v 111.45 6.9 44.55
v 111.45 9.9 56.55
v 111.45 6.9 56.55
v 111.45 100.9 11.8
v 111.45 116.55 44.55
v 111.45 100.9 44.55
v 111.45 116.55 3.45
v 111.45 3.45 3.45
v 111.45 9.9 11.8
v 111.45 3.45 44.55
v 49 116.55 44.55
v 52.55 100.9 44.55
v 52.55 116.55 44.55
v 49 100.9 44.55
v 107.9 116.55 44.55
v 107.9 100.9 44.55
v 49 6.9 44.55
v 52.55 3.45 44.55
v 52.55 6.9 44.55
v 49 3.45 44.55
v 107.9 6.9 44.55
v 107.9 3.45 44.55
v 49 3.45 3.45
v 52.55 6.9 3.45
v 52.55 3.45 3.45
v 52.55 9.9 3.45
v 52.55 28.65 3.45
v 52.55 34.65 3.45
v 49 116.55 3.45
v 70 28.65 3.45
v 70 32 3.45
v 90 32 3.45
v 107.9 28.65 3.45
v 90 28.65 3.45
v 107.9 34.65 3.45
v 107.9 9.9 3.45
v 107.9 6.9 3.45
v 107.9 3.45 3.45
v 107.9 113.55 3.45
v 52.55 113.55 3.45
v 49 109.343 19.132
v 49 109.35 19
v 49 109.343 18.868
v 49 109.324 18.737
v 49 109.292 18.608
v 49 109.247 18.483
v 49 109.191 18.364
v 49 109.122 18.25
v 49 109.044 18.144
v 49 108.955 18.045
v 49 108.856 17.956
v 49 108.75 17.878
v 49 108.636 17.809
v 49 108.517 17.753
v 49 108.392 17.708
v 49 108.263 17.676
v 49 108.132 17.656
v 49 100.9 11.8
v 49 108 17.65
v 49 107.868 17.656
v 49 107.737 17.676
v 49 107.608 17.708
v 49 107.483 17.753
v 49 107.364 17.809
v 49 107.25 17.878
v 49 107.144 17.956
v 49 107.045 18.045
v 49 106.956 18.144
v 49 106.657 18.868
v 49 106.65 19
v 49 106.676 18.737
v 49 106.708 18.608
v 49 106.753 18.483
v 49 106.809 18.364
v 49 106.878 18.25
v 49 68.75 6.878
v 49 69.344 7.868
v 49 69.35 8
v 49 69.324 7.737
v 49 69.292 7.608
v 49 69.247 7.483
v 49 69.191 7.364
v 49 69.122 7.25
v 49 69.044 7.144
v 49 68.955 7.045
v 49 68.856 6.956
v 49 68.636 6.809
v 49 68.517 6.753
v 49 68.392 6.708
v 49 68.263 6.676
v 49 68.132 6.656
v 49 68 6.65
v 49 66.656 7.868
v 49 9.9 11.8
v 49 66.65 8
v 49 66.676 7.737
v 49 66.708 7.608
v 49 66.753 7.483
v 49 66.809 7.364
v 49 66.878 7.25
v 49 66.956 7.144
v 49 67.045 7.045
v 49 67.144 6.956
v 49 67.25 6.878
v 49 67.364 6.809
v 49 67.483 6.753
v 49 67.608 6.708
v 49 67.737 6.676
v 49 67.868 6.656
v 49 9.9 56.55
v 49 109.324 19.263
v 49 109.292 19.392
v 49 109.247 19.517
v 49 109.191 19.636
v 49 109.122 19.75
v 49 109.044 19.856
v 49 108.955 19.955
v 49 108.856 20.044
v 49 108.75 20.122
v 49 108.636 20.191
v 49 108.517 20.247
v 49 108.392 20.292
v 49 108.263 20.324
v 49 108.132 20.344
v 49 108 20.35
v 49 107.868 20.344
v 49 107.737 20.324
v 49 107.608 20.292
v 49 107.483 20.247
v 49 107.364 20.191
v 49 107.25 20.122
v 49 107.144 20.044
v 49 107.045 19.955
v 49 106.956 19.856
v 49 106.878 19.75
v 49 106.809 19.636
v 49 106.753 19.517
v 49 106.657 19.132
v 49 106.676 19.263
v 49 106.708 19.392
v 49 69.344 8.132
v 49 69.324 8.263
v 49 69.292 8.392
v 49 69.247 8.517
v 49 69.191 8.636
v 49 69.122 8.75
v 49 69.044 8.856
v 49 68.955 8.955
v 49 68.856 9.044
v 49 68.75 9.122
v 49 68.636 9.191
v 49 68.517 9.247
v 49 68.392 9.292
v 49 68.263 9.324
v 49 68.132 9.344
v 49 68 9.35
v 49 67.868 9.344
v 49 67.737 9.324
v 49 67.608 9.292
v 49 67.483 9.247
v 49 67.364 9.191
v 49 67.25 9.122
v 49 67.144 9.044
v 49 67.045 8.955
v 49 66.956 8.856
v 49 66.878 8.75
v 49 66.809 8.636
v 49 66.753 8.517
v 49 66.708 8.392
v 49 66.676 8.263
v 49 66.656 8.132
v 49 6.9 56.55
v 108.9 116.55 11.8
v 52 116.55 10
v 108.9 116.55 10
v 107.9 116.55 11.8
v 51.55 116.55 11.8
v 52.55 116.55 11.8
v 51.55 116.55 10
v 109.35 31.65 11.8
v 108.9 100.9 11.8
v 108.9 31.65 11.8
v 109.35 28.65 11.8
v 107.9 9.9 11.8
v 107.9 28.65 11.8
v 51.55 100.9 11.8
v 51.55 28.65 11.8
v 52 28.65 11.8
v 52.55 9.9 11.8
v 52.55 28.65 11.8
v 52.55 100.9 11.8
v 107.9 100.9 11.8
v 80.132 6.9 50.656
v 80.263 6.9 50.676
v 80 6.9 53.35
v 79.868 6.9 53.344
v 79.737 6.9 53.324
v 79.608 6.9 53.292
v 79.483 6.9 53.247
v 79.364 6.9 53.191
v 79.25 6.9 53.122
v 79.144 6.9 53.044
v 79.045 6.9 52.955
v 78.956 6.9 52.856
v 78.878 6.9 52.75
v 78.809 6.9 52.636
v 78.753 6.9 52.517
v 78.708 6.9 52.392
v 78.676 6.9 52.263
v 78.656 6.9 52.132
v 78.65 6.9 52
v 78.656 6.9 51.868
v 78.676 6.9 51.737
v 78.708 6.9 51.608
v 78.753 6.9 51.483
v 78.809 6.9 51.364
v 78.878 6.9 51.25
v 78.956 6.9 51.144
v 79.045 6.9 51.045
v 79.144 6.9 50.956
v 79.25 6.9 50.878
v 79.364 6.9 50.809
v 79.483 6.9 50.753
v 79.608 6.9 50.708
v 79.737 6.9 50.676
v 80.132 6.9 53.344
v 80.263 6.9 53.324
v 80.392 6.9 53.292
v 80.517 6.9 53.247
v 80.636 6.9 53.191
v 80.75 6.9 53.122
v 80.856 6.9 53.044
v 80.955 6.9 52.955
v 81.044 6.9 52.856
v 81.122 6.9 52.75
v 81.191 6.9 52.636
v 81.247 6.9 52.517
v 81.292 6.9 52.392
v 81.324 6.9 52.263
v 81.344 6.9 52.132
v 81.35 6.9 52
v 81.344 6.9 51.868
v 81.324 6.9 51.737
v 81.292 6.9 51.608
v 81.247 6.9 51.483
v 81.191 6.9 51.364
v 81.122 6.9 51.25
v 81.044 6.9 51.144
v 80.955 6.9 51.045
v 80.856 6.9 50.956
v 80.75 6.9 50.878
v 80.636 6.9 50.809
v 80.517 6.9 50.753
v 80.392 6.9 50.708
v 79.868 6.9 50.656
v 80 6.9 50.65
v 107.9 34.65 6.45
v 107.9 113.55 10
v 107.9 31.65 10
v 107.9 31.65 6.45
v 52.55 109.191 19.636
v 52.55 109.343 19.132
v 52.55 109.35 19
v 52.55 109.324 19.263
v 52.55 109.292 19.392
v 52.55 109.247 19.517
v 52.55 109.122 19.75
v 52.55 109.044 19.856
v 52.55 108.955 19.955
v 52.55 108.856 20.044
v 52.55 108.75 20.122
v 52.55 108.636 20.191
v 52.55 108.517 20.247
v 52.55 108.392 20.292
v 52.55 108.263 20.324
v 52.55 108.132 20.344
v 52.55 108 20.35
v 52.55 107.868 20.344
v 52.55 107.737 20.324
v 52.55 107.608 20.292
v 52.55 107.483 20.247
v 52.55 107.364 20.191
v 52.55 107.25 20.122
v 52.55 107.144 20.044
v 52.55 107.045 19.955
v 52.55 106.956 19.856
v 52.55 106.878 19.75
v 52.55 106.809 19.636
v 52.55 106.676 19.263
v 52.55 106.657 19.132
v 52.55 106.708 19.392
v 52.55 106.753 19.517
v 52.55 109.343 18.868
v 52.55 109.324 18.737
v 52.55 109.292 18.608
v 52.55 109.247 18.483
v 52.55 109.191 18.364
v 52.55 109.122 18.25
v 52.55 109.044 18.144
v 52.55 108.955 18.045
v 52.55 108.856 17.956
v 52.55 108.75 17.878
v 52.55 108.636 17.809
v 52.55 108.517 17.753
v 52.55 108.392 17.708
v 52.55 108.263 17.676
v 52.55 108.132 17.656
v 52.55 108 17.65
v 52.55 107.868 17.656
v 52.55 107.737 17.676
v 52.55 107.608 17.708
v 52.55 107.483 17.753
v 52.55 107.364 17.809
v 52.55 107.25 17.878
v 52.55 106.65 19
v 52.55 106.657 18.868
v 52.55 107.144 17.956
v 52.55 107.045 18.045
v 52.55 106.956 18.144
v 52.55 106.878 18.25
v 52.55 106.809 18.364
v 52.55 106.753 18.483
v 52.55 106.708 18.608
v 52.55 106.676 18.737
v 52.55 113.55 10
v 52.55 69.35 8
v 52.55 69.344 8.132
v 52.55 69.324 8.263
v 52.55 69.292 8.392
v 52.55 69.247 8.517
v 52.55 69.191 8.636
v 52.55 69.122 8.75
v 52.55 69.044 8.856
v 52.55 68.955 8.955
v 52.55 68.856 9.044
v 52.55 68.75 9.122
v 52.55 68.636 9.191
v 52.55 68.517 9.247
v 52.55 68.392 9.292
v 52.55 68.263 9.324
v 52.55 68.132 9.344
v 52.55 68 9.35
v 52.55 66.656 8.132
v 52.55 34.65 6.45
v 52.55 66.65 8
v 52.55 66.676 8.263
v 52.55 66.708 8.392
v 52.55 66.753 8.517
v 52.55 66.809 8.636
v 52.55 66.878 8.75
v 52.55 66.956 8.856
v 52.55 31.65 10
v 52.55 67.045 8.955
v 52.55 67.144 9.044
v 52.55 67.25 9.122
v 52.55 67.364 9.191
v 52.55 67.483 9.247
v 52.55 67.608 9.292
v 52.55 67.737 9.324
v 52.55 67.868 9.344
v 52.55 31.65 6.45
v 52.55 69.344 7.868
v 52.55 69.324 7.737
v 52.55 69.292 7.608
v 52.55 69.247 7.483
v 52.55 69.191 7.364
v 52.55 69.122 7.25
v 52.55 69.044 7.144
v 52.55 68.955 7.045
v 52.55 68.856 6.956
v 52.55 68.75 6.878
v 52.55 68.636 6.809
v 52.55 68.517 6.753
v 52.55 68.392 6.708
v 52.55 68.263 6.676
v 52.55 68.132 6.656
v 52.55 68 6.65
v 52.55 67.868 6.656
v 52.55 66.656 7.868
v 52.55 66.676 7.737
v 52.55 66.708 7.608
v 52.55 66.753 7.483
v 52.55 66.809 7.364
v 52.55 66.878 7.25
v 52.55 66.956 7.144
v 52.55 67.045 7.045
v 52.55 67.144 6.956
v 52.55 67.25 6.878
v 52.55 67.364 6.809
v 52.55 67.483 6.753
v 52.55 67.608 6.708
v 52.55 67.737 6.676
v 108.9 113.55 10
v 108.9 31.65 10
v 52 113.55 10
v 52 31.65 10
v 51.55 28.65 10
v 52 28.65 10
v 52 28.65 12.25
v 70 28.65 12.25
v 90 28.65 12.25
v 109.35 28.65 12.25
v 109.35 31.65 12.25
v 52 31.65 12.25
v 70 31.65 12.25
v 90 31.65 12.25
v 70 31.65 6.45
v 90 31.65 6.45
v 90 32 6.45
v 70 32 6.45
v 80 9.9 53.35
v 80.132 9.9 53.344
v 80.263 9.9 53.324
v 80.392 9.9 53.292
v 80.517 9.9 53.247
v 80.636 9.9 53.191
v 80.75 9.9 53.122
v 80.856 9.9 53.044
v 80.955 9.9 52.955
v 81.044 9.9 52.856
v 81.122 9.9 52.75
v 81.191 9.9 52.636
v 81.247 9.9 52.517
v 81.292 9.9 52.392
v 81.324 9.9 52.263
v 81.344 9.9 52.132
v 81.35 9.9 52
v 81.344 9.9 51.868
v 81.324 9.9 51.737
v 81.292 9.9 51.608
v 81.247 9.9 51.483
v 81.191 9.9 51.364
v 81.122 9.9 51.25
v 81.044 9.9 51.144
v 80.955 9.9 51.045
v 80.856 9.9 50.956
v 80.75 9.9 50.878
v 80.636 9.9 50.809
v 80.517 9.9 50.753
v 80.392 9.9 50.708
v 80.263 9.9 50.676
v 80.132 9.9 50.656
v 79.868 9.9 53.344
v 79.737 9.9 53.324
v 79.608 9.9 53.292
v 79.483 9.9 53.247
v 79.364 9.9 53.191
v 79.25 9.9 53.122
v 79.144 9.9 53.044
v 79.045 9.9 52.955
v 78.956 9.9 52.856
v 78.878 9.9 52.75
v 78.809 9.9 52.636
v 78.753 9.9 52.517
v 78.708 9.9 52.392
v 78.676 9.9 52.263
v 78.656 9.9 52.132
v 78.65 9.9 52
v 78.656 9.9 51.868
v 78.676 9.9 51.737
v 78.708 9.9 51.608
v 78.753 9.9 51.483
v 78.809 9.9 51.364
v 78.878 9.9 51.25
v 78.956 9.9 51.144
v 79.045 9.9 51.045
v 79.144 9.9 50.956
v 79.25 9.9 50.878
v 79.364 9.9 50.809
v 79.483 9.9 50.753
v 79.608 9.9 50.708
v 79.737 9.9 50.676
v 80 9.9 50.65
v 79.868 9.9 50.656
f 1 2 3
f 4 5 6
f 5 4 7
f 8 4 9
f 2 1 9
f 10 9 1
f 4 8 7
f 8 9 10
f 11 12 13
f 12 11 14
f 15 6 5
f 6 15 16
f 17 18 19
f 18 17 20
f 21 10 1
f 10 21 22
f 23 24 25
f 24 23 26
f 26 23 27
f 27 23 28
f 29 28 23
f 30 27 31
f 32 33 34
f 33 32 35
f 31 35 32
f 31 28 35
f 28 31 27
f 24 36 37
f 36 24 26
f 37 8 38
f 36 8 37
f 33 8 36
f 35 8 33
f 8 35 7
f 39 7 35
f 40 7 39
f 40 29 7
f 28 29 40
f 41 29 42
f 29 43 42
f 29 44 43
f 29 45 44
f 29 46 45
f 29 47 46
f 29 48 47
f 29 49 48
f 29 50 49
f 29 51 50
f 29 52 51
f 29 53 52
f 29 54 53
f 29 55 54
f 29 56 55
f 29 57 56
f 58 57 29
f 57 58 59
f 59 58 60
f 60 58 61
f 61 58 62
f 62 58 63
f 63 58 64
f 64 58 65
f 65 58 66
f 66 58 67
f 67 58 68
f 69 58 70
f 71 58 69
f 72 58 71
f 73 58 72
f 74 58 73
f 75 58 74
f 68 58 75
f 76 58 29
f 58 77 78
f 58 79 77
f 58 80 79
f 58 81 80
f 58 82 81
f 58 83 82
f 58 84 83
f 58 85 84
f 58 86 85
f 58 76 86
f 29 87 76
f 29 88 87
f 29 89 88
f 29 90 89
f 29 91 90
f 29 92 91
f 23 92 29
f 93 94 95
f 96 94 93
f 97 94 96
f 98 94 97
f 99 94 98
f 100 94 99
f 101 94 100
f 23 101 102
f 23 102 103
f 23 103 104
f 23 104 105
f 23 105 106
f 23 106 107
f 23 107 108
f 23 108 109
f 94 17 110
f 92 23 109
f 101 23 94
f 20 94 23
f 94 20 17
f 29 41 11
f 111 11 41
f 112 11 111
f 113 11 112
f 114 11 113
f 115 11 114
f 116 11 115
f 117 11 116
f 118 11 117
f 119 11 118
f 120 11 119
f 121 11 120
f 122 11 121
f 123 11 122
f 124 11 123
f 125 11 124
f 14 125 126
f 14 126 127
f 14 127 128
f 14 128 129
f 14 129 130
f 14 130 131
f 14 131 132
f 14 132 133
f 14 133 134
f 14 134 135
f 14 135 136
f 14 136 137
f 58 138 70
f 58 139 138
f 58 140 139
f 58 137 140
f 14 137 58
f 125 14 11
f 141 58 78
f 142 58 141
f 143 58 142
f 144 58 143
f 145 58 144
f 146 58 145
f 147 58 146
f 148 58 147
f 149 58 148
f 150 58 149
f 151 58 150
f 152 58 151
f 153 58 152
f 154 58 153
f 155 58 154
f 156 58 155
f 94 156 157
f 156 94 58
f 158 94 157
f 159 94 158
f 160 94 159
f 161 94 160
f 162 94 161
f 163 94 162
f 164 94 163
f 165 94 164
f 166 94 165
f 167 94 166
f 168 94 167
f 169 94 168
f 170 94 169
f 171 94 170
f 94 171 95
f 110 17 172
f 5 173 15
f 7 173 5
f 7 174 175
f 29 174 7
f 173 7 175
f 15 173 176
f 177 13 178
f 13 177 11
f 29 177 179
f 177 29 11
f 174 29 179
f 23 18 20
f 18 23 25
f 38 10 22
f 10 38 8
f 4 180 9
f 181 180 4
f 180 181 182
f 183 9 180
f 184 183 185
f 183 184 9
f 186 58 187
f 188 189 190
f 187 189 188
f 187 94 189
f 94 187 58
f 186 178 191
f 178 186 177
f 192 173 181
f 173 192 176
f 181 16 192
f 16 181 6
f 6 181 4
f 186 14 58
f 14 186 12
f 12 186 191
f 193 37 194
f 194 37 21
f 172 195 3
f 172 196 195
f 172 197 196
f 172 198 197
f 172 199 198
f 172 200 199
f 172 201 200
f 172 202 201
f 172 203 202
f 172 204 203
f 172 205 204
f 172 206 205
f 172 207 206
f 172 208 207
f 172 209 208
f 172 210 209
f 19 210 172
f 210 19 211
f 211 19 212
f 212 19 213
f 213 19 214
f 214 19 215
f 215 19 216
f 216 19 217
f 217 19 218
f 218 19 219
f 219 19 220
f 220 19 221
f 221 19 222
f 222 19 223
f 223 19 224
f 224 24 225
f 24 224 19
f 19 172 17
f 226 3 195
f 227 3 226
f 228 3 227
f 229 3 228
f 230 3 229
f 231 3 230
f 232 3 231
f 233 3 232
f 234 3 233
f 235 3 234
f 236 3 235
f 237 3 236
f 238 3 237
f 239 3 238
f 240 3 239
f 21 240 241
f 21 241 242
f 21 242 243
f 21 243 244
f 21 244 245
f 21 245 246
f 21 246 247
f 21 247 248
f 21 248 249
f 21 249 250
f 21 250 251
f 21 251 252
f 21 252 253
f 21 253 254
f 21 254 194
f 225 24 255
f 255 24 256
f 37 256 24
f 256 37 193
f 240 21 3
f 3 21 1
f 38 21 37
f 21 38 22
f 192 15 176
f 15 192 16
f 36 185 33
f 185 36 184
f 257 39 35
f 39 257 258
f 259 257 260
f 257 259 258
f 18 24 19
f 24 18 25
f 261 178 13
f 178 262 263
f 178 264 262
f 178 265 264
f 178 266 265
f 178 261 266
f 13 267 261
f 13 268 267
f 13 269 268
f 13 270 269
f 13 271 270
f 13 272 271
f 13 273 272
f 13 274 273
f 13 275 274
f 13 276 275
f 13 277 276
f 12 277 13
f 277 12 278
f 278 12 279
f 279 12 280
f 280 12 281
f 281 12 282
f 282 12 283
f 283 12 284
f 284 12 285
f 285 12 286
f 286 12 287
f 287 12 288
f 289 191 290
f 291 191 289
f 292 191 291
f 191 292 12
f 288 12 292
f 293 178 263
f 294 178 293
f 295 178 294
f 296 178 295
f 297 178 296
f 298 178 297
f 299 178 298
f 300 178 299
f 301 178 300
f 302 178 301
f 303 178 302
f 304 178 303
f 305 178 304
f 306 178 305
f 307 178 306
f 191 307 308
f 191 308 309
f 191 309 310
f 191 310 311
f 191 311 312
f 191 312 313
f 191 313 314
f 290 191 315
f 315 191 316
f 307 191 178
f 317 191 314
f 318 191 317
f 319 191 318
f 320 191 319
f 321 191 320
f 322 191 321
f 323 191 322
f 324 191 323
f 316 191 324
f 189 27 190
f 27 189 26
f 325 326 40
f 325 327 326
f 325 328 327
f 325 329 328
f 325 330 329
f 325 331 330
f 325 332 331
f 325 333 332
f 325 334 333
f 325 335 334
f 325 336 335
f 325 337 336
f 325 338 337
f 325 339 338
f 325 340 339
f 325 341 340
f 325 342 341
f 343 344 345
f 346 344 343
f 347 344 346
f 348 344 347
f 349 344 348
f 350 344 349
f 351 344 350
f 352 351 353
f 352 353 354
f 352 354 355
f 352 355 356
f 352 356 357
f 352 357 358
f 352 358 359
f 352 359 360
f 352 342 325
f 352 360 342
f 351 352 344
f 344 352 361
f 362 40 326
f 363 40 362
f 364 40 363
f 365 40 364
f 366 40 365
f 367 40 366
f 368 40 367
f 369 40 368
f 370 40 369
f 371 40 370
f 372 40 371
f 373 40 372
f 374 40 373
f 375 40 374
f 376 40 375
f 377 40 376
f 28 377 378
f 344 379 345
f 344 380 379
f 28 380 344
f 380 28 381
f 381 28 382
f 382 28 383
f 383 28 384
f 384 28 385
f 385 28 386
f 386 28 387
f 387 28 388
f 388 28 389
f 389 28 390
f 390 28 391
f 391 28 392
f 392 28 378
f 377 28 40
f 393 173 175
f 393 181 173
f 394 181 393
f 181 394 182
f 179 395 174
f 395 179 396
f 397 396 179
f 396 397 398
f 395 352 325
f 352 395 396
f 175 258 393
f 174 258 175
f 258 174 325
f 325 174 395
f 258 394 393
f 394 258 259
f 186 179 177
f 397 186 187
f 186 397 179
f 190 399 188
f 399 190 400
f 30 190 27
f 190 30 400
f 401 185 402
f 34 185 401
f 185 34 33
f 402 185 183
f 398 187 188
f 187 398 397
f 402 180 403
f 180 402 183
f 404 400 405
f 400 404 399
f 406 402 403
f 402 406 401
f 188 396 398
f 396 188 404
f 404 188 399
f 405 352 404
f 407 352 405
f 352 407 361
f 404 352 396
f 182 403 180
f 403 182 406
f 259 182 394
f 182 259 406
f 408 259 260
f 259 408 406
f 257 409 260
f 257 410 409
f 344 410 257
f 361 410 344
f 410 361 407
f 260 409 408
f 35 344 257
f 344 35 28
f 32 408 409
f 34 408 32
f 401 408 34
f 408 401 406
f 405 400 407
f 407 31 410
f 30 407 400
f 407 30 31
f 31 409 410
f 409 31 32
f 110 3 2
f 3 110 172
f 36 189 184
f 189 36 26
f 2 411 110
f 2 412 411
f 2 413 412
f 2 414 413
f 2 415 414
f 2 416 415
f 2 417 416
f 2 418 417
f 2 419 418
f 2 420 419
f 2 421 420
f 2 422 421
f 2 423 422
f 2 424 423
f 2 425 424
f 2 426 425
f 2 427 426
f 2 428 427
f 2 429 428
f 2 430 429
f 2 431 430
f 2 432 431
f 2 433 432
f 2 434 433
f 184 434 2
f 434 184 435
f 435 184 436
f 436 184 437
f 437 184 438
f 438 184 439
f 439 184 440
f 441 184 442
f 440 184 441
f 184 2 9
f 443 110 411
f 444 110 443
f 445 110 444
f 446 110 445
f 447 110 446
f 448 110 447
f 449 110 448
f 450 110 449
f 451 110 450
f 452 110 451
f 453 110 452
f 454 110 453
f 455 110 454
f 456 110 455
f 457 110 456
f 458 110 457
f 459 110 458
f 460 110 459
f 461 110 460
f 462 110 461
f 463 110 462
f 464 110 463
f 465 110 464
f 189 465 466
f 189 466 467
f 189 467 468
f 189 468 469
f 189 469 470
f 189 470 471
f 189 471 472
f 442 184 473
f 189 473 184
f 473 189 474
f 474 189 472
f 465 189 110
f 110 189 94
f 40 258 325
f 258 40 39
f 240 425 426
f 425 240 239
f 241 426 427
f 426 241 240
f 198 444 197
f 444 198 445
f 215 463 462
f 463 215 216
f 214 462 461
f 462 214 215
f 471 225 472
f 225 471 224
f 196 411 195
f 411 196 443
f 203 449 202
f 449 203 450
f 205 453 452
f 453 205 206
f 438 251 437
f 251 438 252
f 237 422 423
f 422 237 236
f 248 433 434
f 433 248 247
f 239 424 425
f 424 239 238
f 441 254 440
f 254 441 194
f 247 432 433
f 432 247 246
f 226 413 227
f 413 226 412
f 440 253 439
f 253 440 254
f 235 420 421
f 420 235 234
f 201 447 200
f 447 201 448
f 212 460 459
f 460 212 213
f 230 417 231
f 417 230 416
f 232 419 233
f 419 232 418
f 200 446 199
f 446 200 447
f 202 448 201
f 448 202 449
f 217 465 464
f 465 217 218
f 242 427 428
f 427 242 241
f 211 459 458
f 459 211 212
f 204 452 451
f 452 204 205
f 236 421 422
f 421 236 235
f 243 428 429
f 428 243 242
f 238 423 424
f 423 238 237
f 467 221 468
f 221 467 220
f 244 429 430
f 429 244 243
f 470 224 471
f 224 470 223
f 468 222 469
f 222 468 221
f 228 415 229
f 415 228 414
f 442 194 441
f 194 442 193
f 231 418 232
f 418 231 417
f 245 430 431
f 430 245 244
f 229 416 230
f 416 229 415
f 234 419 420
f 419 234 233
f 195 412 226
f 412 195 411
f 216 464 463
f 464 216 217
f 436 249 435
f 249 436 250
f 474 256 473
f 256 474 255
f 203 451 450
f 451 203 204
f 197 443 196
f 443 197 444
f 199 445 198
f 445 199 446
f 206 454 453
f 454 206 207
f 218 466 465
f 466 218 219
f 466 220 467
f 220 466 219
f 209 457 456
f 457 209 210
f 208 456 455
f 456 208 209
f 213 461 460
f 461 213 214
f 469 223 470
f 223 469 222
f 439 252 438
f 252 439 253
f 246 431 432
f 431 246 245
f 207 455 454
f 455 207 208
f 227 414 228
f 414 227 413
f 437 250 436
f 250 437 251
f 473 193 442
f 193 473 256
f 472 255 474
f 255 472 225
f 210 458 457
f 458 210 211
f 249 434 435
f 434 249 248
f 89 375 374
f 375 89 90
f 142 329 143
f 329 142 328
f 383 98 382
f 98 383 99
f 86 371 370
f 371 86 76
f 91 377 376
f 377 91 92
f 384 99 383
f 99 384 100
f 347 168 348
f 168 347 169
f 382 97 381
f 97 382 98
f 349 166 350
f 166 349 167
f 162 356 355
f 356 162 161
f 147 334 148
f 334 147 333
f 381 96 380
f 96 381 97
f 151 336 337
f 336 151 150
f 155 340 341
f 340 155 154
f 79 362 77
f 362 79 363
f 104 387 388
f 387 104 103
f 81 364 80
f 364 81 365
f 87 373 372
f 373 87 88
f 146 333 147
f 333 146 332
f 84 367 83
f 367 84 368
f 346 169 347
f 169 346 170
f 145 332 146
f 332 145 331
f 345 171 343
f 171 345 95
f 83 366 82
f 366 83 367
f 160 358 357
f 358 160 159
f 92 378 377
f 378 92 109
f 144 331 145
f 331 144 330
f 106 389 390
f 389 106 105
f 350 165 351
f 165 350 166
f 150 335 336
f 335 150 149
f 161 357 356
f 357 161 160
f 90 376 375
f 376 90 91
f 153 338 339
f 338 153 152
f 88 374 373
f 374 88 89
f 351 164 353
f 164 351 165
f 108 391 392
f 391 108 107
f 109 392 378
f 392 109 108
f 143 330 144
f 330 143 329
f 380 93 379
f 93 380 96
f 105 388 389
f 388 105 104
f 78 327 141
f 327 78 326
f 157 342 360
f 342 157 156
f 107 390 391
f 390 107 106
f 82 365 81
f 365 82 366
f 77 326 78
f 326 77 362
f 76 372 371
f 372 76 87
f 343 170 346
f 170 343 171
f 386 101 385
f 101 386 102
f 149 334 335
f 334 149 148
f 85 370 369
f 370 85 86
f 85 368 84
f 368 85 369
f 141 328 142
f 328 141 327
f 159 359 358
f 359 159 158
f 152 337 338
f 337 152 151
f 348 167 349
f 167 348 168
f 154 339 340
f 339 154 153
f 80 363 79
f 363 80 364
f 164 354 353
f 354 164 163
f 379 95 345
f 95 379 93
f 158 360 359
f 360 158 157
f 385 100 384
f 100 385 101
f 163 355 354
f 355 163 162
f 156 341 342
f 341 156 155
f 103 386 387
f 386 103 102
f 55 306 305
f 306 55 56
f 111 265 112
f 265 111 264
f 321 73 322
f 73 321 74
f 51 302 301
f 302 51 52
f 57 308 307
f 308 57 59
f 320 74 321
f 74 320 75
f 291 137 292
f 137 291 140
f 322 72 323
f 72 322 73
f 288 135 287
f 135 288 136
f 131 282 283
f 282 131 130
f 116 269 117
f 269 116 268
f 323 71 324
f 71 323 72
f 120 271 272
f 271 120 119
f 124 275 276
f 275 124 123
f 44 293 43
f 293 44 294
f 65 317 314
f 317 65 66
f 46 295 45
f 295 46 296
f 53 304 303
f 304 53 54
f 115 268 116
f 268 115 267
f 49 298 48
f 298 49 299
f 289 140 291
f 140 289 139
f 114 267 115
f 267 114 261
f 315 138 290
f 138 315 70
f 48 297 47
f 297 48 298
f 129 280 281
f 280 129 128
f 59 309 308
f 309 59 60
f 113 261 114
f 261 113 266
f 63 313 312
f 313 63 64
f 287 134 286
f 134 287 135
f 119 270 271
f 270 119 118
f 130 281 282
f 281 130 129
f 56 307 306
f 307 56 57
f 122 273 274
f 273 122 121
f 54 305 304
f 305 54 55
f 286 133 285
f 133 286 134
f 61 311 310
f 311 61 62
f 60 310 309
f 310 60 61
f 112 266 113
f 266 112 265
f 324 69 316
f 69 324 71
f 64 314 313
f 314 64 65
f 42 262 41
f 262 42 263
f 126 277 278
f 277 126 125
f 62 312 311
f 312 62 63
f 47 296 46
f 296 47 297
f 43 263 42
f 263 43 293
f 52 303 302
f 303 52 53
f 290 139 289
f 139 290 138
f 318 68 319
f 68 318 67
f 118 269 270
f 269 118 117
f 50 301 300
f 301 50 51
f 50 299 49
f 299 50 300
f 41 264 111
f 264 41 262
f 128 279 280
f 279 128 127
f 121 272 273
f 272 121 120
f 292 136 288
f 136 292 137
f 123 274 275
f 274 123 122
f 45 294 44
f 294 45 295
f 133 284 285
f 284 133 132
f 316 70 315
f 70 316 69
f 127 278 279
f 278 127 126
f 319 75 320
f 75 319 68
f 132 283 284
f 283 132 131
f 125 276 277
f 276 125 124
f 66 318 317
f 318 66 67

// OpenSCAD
difference() {
	union() {
		difference() {
			union() {
				difference() {
					translate(v = [0, 3.4500000000, 0]) {
						translate(v = [49.0000000000, 0, 0]) {
							translate(v = [0, 0, 3.4500000000]) {
								cube(size = [62.4500000000, 113.1000000000, 41.1000000000]);
							}
						}
					}
					translate(v = [0, 6.9000000000, 0]) {
						translate(v = [49.0000000000, 0, 0]) {
							translate(v = [0, 0, 11.8000000000]) {
								cube(size = [62.4500000000, 94.0000000000, 57.0000000000]);
							}
						}
					}
					translate(v = [0, 3.4500000000, 0]) {
						translate(v = [52.5500000000, 0, 0]) {
							translate(v = [0, 0, 3.4500000000]) {
								cube(size = [55.3500000000, 114.0000000000, 57.0000000000]);
							}
						}
					}
					translate(v = [0, 28.6500000000, 0]) {
						translate(v = [51.5500000000, 0, 0]) {
							translate(v = [0, 0, 10.0000000000]) {
								cube(size = [57.3500000000, 87.9000000000, 1.8000000000]);
							}
						}
					}
				}
				translate(v = [0, 28.6500000000, 0]) {
					translate(v = [52.0000000000, 0, 0]) {
						translate(v = [0, 0, 3.4500000000]) {
							cube(size = [57.3500000000, 3.0000000000, 8.8000000000]);
						}
					}
				}
				translate(v = [0, 31.6500000000, 0]) {
					translate(v = [52.0000000000, 0, 0]) {
						translate(v = [0, 0, 3.4500000000]) {
							cube(size = [57.3500000000, 3.0000000000, 3.0000000000]);
						}
					}
				}
			}
			translate(v = [70.0000000000, 0, 0]) {
				translate(v = [0, 12.0000000000, 0]) {
					cube(size = [20.0000000000, 20.0000000000, 57.0000000000]);
				}
			}
		}
		translate(v = [0, 6.9000000000, 0]) {
			translate(v = [49.0000000000, 0, 0]) {
				translate(v = [0, 0, 3.4500000000]) {
					cube(size = [62.4500000000, 3.0000000000, 53.1000000000]);
				}
			}
		}
		translate(v = [0, 113.5500000000, 0]) {
			translate(v = [52.0000000000, 0, 0]) {
				translate(v = [0, 0, 3.4500000000]) {
					cube(size = [57.3500000000, 3.0000000000, 6.5500000000]);
				}
			}
		}
	}
	translate(v = [0, 120.0000000000, 0]) {
		translate(v = [30.0000000000, 0, 0]) {
			translate(v = [0, 0, 52.0000000000]) {
				rotate(a = [90, 0, 0]) {
					cylinder($fn = 64, d = 2.7000000000, h = 120.0000000000);
				}
			}
		}
	}
	translate(v = [0, 120.0000000000, 0]) {
		translate(v = [80.0000000000, 0, 0]) {
			translate(v = [0, 0, 52.0000000000]) {
				rotate(a = [90, 0, 0]) {
					cylinder($fn = 64, d = 2.7000000000, h = 120.0000000000);
				}
			}
		}
	}
	translate(v = [0, 120.0000000000, 0]) {
		translate(v = [130.0000000000, 0, 0]) {
			translate(v = [0, 0, 52.0000000000]) {
				rotate(a = [90, 0, 0]) {
					cylinder($fn = 64, d = 2.7000000000, h = 120.0000000000);
				}
			}
		}
	}
	translate(v = [0, 68.0000000000, 0]) {
		translate(v = [0, 0, 8.0000000000]) {
			rotate(a = [0, 90, 0]) {
				cylinder($fn = 64, d = 2.7000000000, h = 80.0000000000);
			}
		}
	}
	translate(v = [0, 108.0000000000, 0]) {
		translate(v = [0, 0, 19.0000000000]) {
			rotate(a = [0, 90, 0]) {
				cylinder($fn = 64, d = 2.7000000000, h = 80.0000000000);
			}
		}
	}
}
/***********************************************
*********      SolidPython code:      **********
************************************************
 
import solid as s
import solid.utils as u

width = 160.0
depth = 120.0
height = 57.0
wall_width = 3.0
wall_width2 = wall_width * 2.0 
jack_height = 16.0

jack_dia = 9.5
jack_y = 60.0
power_x = 13.0
power_dia = 8.5
midi_x = 35.0
midi_dia = 15.5
midi_screw_x = 11.0
midi_screw_dia = 2.0
ret_x = 122.0
send_x = 146.0

usb_z = 9.0
usb_height = 17.0
usb_width = 52.0
usb_x = 54.0

grill_slot = 3.0
grill_spacing = 3.1
grill_x = 54.0
grill_width = 52.0
grill_back_z = 29.0
grill_back_height = 20.0
grill_base_y = 50.0
grill_base_depth = 50.0

flash_width = 20.0
flash_depth = 20.0
flash_x = 70.0
flash_y = 12.0

screw_dia = 2.7
screw_side = 3
screw_front = 3
screw_spacing = 50.0
screw_height = 52.0
screw_side_y = 10.0
screw_front_x = 30.0

nt = 0.45  # nestle tolerance, so body and lid fit together
nt2 = nt * 2

lid_lip_height = 12.0
lid_lip_x = wall_width + nt
lid_lip_y = wall_width + nt
lid_lip_width = width - lid_lip_x - lid_lip_x
lid_lip_depth = depth - lid_lip_y - lid_lip_y
screen_x = 49.0
screen_width = 60.0
screen_y = 60
screen_depth = 50.0
screen_screw_1_x = 39.0
screen_screw_1_y = 57.0
screen_screw_2_x = 39.0
screen_screw_2_y = 105.0
screen_screw_3_x = 116.0
screen_screw_3_y = 105.0
encoder_dia = 7.0
volume_dia = 7.0
switch_dia = 10.0

enc1_x = 25.0
enc1_y = 70.0
enc4_x = 135.0
enc4_y = 100.0
bottom_buttons_y = 30.0
onoff_x = 25.0
volume_x = 80.0
bypass_x = 135.0

pi_width = 56.0 + nt
pi_depth = 87.0 + nt
pi_height = 1.8
pi_x = 52.0
pi_y = 32.0 - nt
pi_z = 7.0
pi_slot_length = 20.0
pi_slot_height = 19.0
pi_slot_width = 1.0
cont_screw_1_z = wall_width + 5.0
cont_screw_1_y = depth - 52.0
cont_screw_2_z = wall_width + 16.0
cont_screw_2_y = depth - 12.0

###########
# Base
###########
base = s.cube(size=[width, depth, height])
base -= u.right(wall_width)(u.forward(wall_width)(u.up(wall_width)(
    s.cube(size=[width - wall_width2, depth - wall_width2, height - wall_width])
)))
# jack holes
base -= u.forward(jack_y)(u.up(jack_height)(s.rotate(a=[0, 90, 0])(
    s.cylinder(d=jack_dia, h=width, segments=64)
)))

# send return holes
base -= u.right(ret_x)(u.up(jack_height)(u.forward(depth)(s.rotate(a=[90, 0, 0])(
    s.cylinder(d=jack_dia, h=wall_width, segments=64)
))))
base -= u.right(send_x)(u.up(jack_height)(u.forward(depth)(s.rotate(a=[90, 0, 0])(
    s.cylinder(d=jack_dia, h=wall_width, segments=64)
))))

# legacy midi
base -= u.right(midi_x)(u.up(jack_height)(u.forward(depth)(s.rotate(a=[90, 0, 0])(
    s.cylinder(d=midi_dia, h=wall_width, segments=64)
))))
base -= u.right(midi_x + midi_screw_x)(u.up(jack_height)(u.forward(depth)(s.rotate(a=[90, 0, 0])(
    s.cylinder(d=midi_screw_dia, h=wall_width, segments=64)
))))
base -= u.right(midi_x - midi_screw_x)(u.up(jack_height)(u.forward(depth)(s.rotate(a=[90, 0, 0])(
    s.cylinder(d=midi_screw_dia, h=wall_width, segments=64)
))))

# power
base -= u.right(power_x)(u.up(jack_height)(u.forward(depth)(s.rotate(a=[90, 0, 0])(
    s.cylinder(d=power_dia, h=wall_width, segments=64)
))))

# pi usb/ethernet
base -= u.right(usb_x)(u.up(usb_z)(u.forward(depth - wall_width)(s.rotate(a=[0, 0, 0])(
    s.cube(size=[usb_width, wall_width, usb_height])
))))

# grills
gx = grill_x
while True:
    # back grill
    base -= u.right(gx)(u.up(grill_back_z)(u.forward(depth - wall_width)(s.rotate(a=[0, 0, 0])(
        s.cube(size=[grill_slot, wall_width, grill_back_height])
    ))))

    # base grill
    base -= u.right(gx)(u.forward(grill_base_y)(
        s.cube(size=[grill_slot, grill_base_depth, wall_width])
    ))

    gx += grill_slot + grill_spacing
    if gx > grill_x + grill_width:
        break

# flash card access hole
flash_hole = u.right(flash_x)(u.forward(flash_y)(
    s.cube(size=[flash_width, flash_depth, height])
))
base -= flash_hole

###########
# Lid
###########
lid = u.up(height + nt)(
    s.cube(size=[width, depth, wall_width])
)

# lid lip
lid += u.forward(lid_lip_y)(u.right(lid_lip_x)(u.up(height + nt - lid_lip_height)(
    s.cube(size=[lid_lip_width, lid_lip_depth, lid_lip_height])
)))
lid -= u.forward(lid_lip_y + wall_width)(u.right(lid_lip_x + wall_width)(u.up(height + nt - lid_lip_height)(
    s.cube(size=[lid_lip_width - wall_width2, lid_lip_depth - wall_width2, lid_lip_height])
)))

# screen hole
lid -= u.forward(screen_y)(u.right(screen_x)(u.up(height + nt)(
    s.cube(size=[screen_width, screen_depth, wall_width])
)))
# screen screws
lid -= u.forward(screen_screw_1_y)(u.right(screen_screw_1_x)(u.up(height + nt)(
    s.cylinder(d=screw_dia, h=wall_width)
)))
lid -= u.forward(screen_screw_2_y)(u.right(screen_screw_2_x)(u.up(height + nt)(
    s.cylinder(d=screw_dia, h=wall_width)
)))
lid -= u.forward(screen_screw_3_y)(u.right(screen_screw_3_x)(u.up(height + nt)(
    s.cylinder(d=screw_dia, h=wall_width)
)))

# encoder holes
lid -= u.forward(enc1_y)(u.right(enc1_x)(u.up(height + nt)(
    s.cylinder(d=encoder_dia, h=wall_width)
)))
lid -= u.forward(enc1_y)(u.right(enc4_x)(u.up(height + nt)(
    s.cylinder(d=encoder_dia, h=wall_width)
)))
lid -= u.forward(enc4_y)(u.right(enc1_x)(u.up(height + nt)(
    s.cylinder(d=encoder_dia, h=wall_width)
)))
lid -= u.forward(enc4_y)(u.right(enc4_x)(u.up(height + nt)(
    s.cylinder(d=encoder_dia, h=wall_width)
)))

# bottom button holes
lid -= u.forward(bottom_buttons_y)(u.right(onoff_x)(u.up(height + nt)(
    s.cylinder(d=switch_dia, h=wall_width)
)))
lid -= u.forward(bottom_buttons_y)(u.right(volume_x)(u.up(height + nt)(
    s.cylinder(d=volume_dia, h=wall_width)
)))
lid -= u.forward(bottom_buttons_y)(u.right(bypass_x)(u.up(height + nt)(
    s.cylinder(d=switch_dia, h=wall_width)
)))

#############
# insert
#############

# block to subtract pi insert from
insert = u.forward(wall_width + nt)(u.right(pi_x - wall_width)(u.up(wall_width + nt)(
    s.cube(size=[
        wall_width2 + pi_width,
        depth - wall_width2 - nt2,
        height - wall_width - nt - lid_lip_height - nt
    ])
)))

# pi side walls
insert -= u.forward(wall_width2 + nt2)(u.right(pi_x - wall_width)(u.up(wall_width + pi_z + pi_height)(
    s.cube(size=[
        wall_width2 + pi_width,
        depth - wall_width2 - pi_slot_length,
        height
    ])
)))

# base rails for the pi pc board to sit on
insert -= u.forward(wall_width + nt)(u.right(pi_x + pi_slot_width - nt)(u.up(wall_width + nt)(
    s.cube(size=[
        pi_width + nt2 - pi_slot_width - pi_slot_width,
        depth - wall_width2,
        height
    ])
)))

# pi board slot
insert -= u.forward(depth - pi_depth - nt2 - wall_width)(u.right(pi_x - nt)(u.up(wall_width + pi_z)(
    s.cube(size=[
        pi_width + nt2,
        pi_depth + nt,
        pi_height
    ])
)))

# pi board back stop
insert += u.forward(depth - pi_depth - nt2 - wall_width)(u.right(pi_x)(u.up(wall_width + nt)(
    s.cube(size=[
        pi_width + nt2,
        wall_width,
        pi_z + pi_height
    ])
)))
# pi board back stop support
insert += u.forward(depth - pi_depth - nt2)(u.right(pi_x)(u.up(wall_width + nt)(
    s.cube(size=[
        pi_width + nt2,
        wall_width,
        wall_width
    ])
)))
insert -= flash_hole

# insert screw wall
insert += u.forward(wall_width2 + nt2)(u.right(pi_x - wall_width)(u.up(wall_width + nt)(
    s.cube(size=[
        wall_width2 + pi_width,
        wall_width,
        height - wall_width - nt2
    ])
)))

# pi board usb support
insert += u.forward(depth - nt - wall_width2)(u.right(pi_x)(u.up(wall_width + nt)(
    s.cube(size=[
        pi_width + nt2,
        wall_width,
        pi_z - nt
    ])
)))

#############
# screw holes
#############
for i in range(screw_side):
    screw = u.forward(screw_side_y + i*screw_spacing)(u.up(screw_height)(s.rotate(a=[0, 90, 0])(
        s.cylinder(d=screw_dia, h=width, segments=64)
    )))
    base -= screw
    lid -= screw

for i in range(screw_front):
    screw = u.forward(depth)(u.right(screw_front_x + i*screw_spacing)(u.up(screw_height)(s.rotate(a=[90, 0, 0])(
        s.cylinder(d=screw_dia, h=depth, segments=64)
    ))))
    base -= screw
    lid -= screw
    insert -= screw

# controller board screw holes
insert -= u.forward(cont_screw_1_y)(u.up(cont_screw_1_z)(s.rotate(a=[0, 90, 0])(
    s.cylinder(d=screw_dia, h=width / 2.0, segments=64)
)))
insert -= u.forward(cont_screw_2_y)(u.up(cont_screw_2_z)(s.rotate(a=[0, 90, 0])(
    s.cylinder(d=screw_dia, h=width / 2.0, segments=64)
)))


def render(suffix, final):
    suffix += '.scad'
    s.scad_render_to_file(final, __file__.replace('.py', suffix))

blue_lid = s.color(u.Blue)(lid)
red_insert = s.color(u.Red)(insert)
render(
    '',
    base + red_insert # + blue_lid
)

render(
    '-exploded',
    base + u.up(120)(blue_lid) + u.up(60)(red_insert)
)

render(
    '-print-base',
    base
)
render(
    '-print-insert',
    insert
)
render(
    '-print-lid',
    s.rotate(a=[180, 0, 0])(u.down(height + wall_width)(lid))
)
 
 
************************************************/
